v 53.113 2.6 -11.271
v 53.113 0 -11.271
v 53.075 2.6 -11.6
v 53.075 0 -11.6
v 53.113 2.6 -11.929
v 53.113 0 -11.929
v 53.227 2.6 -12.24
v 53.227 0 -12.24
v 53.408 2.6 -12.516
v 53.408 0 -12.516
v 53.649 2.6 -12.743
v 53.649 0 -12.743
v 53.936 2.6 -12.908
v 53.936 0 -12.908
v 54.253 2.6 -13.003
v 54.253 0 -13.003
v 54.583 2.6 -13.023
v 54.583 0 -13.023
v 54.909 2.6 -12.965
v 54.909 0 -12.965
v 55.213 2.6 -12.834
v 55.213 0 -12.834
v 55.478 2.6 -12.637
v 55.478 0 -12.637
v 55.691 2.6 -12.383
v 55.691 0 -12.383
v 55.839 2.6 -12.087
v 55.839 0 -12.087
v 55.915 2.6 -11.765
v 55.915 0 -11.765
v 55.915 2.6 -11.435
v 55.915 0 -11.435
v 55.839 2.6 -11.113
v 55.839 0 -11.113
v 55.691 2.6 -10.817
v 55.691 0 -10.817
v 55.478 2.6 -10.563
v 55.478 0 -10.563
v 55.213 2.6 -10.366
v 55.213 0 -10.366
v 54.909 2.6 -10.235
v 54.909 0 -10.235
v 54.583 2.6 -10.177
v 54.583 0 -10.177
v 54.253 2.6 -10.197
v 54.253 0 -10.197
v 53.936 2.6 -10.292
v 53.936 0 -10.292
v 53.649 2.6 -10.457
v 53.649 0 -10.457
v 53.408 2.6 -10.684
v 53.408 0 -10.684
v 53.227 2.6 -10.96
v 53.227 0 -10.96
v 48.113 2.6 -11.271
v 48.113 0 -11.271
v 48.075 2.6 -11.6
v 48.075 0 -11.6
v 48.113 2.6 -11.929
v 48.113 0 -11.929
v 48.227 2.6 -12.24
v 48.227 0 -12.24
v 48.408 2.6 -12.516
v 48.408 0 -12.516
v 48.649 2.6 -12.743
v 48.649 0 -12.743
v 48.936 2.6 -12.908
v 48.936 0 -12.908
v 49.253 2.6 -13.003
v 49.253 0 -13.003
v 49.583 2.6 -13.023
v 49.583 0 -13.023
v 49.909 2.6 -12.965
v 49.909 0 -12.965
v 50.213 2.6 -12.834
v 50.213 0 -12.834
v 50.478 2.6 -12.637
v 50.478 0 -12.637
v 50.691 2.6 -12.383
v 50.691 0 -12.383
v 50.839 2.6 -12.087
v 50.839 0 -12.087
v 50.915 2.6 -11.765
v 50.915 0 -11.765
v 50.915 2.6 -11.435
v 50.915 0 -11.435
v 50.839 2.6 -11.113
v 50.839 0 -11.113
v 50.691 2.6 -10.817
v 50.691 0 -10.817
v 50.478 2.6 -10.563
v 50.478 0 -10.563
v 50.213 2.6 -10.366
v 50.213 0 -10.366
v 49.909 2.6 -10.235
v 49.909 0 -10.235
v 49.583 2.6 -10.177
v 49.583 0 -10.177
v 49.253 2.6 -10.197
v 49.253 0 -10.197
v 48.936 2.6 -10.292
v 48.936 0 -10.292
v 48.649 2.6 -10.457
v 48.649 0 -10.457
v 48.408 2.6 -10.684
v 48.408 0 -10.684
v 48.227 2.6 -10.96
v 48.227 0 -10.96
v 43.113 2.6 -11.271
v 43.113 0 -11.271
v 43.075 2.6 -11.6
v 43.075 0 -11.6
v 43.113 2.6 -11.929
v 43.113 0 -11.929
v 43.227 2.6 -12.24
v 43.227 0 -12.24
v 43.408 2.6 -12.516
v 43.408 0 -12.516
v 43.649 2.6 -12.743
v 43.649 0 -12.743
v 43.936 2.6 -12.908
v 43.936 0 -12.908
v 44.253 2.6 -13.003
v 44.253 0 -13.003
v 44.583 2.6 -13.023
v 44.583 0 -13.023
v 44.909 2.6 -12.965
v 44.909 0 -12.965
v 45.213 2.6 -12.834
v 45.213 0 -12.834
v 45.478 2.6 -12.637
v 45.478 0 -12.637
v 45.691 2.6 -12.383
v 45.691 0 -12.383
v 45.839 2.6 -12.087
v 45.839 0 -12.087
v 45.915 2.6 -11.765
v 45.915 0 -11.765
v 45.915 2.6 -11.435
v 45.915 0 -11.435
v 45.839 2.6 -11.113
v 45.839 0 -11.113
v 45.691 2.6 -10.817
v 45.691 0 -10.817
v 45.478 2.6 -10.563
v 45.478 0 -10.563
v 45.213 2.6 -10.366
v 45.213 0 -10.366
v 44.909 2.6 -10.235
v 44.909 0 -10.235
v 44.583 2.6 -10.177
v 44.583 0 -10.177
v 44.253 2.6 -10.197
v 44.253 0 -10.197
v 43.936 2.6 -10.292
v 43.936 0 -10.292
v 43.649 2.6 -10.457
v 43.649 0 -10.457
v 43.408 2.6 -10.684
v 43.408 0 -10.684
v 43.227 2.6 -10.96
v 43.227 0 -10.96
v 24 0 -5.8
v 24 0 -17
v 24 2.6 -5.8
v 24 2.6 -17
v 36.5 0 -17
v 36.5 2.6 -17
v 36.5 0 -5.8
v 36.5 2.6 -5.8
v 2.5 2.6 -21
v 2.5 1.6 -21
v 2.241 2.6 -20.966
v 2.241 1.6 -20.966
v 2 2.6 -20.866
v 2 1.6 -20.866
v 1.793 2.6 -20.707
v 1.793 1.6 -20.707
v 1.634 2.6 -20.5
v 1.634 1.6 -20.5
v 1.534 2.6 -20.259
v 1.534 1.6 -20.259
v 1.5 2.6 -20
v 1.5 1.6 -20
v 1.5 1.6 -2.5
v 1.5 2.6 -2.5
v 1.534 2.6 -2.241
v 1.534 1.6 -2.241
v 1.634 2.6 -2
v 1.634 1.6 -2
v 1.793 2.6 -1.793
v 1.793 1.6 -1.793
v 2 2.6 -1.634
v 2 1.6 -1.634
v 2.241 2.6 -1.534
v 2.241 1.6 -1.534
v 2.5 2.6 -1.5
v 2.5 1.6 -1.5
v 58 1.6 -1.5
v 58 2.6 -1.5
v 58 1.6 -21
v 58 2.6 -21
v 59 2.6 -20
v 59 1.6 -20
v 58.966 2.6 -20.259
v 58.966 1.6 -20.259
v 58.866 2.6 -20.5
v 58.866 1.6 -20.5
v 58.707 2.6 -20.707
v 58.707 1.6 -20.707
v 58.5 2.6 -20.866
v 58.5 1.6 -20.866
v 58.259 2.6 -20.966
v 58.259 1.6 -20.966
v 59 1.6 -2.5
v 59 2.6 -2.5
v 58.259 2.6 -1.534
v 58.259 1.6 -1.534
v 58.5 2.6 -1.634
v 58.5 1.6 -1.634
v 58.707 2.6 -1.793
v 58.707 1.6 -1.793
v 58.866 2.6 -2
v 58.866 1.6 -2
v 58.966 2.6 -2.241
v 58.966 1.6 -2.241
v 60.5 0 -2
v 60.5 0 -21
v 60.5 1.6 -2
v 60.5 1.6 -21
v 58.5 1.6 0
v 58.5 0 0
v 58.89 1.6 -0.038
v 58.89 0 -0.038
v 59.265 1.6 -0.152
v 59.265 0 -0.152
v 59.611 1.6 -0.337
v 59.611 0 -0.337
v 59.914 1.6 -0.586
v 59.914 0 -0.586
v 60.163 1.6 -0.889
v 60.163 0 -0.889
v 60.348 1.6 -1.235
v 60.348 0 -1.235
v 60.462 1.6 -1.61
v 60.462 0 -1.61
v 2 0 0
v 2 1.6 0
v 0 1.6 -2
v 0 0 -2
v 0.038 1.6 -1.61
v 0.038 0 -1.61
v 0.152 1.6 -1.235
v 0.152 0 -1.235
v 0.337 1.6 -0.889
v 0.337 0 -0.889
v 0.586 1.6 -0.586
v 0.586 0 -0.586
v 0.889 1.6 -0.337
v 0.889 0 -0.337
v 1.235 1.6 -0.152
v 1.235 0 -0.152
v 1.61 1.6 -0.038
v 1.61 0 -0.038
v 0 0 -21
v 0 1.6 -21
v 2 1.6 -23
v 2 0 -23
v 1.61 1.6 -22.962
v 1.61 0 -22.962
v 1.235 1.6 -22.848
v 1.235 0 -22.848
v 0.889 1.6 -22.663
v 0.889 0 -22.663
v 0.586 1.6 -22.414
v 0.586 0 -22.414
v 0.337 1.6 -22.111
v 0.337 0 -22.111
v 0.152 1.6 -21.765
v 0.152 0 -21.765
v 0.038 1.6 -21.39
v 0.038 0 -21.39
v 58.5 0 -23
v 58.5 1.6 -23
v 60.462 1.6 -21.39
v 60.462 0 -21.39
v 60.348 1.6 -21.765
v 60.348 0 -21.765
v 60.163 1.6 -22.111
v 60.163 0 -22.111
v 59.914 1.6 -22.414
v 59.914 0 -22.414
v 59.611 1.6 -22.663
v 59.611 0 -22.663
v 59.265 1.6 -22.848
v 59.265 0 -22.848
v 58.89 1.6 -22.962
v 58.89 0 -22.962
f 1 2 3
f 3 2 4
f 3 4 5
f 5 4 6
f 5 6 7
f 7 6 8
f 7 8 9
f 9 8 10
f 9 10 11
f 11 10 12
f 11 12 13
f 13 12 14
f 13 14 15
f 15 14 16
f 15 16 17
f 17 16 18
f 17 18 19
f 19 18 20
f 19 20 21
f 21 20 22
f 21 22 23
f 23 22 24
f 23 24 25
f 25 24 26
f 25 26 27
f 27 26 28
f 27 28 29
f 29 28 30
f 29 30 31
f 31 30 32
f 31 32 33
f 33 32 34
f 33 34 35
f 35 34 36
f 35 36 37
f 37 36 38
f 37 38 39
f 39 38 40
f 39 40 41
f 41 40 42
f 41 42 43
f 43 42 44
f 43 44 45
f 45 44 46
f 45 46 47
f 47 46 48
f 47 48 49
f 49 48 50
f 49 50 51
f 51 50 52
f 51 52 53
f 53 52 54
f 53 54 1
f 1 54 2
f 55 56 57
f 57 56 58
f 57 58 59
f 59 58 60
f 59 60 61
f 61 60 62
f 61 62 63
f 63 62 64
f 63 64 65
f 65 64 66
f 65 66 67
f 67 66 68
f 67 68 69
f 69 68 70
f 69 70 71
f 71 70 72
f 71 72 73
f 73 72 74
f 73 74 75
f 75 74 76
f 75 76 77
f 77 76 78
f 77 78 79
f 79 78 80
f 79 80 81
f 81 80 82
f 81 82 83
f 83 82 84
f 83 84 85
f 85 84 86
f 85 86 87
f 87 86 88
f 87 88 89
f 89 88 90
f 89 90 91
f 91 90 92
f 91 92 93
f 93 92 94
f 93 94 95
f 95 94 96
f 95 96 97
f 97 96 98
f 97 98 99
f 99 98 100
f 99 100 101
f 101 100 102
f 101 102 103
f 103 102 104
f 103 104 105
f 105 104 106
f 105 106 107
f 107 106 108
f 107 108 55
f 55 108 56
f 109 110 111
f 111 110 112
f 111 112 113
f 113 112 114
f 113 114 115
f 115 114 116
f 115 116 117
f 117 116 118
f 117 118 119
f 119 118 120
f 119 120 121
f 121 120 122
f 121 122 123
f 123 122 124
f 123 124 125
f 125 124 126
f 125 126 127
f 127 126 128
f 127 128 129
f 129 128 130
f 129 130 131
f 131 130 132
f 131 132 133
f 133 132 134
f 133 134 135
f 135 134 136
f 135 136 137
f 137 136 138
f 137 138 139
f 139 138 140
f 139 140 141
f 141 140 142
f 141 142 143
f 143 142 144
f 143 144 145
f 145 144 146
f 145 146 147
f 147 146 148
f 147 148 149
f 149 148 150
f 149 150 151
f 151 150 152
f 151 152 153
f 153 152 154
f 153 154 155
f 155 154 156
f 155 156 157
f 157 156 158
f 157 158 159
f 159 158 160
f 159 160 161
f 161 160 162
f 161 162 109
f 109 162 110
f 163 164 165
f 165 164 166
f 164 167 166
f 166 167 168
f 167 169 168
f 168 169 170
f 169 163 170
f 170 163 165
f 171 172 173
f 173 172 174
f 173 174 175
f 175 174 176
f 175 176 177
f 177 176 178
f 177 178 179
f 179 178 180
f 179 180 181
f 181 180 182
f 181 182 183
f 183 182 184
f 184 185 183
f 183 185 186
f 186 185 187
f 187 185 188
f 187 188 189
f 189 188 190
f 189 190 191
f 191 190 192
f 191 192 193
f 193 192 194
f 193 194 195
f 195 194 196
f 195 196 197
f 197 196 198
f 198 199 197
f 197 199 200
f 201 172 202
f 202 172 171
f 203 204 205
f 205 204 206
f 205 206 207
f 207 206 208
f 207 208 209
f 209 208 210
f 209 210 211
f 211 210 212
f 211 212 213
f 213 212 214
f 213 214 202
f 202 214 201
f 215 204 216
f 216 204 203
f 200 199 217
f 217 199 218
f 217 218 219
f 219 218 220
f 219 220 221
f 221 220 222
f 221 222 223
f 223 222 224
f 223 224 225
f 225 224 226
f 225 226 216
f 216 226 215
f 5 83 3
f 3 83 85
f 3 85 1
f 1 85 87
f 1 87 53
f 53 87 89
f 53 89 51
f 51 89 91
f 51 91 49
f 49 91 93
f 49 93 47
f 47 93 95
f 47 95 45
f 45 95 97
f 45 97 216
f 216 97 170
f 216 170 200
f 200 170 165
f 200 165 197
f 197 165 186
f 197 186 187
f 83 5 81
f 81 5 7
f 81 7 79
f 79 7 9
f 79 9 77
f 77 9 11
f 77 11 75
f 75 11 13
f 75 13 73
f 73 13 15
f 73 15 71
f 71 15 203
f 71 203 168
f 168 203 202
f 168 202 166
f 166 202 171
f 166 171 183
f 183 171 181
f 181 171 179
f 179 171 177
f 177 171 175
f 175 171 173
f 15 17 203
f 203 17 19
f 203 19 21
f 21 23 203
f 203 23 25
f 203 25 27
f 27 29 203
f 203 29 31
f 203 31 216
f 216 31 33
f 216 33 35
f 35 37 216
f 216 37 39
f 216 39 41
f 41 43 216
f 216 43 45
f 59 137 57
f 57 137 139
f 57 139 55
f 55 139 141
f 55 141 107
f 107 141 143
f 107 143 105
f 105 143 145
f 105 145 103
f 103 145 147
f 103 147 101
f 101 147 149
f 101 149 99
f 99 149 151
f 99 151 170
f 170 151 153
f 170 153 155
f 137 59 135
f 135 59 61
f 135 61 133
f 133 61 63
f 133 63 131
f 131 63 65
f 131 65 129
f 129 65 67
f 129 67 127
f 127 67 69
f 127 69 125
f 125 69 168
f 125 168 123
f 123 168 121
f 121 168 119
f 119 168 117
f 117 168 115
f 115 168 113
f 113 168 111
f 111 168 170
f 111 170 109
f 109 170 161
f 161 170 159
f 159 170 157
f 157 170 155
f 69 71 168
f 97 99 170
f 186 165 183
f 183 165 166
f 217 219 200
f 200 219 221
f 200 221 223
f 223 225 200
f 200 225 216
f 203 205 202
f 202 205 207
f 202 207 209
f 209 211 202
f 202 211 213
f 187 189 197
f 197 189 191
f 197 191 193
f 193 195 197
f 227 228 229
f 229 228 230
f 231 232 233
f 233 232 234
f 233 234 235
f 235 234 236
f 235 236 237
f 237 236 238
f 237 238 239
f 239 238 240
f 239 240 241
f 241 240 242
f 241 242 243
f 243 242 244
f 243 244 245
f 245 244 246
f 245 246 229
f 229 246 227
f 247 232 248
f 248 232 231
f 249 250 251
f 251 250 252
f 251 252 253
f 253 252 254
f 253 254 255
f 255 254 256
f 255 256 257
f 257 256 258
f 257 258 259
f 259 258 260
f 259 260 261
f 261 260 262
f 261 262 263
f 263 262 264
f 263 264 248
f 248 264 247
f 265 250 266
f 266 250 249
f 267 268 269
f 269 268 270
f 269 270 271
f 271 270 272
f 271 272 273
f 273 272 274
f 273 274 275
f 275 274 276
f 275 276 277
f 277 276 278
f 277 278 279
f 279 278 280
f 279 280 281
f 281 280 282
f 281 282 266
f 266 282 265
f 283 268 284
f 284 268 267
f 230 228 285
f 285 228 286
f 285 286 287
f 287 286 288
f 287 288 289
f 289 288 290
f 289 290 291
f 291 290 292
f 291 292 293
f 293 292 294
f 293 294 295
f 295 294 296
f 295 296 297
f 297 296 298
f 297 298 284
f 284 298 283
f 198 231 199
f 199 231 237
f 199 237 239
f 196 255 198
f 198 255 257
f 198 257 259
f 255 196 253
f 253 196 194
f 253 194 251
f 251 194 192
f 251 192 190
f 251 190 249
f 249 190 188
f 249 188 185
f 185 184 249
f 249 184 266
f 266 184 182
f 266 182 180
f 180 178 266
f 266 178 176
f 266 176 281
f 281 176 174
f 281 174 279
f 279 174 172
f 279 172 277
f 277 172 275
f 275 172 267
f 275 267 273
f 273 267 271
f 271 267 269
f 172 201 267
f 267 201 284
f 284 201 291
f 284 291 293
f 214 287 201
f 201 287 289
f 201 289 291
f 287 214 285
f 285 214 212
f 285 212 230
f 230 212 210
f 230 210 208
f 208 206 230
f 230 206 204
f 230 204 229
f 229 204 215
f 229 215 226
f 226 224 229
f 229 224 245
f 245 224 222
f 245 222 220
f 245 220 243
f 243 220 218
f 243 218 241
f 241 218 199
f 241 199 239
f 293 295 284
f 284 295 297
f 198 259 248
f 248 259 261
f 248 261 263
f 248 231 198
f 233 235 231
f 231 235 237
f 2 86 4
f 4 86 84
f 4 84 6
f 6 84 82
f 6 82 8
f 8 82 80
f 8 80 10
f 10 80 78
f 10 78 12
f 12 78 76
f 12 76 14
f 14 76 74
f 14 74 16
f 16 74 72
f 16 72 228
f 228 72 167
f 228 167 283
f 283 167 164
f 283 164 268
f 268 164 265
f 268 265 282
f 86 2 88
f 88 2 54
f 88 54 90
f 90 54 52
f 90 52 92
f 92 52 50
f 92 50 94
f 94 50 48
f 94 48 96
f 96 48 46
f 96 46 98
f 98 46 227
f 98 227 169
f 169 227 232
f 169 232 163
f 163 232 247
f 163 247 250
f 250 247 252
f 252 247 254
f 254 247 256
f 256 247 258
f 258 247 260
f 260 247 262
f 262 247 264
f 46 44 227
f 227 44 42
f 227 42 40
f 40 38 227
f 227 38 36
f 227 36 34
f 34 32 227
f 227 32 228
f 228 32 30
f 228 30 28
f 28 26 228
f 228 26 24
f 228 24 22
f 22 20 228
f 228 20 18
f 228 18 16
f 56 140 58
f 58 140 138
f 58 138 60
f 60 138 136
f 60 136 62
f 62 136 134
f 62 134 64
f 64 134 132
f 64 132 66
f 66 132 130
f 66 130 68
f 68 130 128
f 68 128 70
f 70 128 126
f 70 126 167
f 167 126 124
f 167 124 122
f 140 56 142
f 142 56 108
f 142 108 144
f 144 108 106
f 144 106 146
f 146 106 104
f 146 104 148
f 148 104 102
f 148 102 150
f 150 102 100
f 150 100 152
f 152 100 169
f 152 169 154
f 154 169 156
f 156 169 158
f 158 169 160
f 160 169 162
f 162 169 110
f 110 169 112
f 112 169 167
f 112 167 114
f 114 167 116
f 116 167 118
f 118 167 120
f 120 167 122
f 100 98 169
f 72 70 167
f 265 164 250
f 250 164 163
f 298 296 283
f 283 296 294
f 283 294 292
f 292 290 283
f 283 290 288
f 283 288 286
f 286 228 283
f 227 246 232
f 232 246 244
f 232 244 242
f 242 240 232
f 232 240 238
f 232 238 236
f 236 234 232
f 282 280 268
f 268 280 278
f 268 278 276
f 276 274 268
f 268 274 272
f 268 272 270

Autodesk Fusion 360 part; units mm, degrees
sketch "Skizze1" plane through (0, 0, 0) normal (0, 1, 0) x (1, 0, 0)
  arc A0 (0, 2) -> (2, 0) centre (2, 2) ccw
  arc A1 (2, 23) -> (0, 21) centre (2, 21) ccw
  line L0 (58.5, 23) -> (2, 23)
  line L1 (60.5, 2) -> (60.5, 21)
  arc A2 (58.5, 0) -> (60.5, 2) centre (58.5, 2) ccw
  line L2 (2, 0) -> (58.5, 0)
  line L3 (0, 21) -> (0, 2)
  arc A3 (60.5, 21) -> (58.5, 23) centre (58.5, 21) ccw
  point P0 (60.5, 0)
  point P1 (0, 23)
  dimension "d1" = 60.5
  dimension "d2" = 23
  dimension "d3" = 2
  dimension "d4" = 2
  dimension "d5" = 2
  dimension "d6" = 2
sketch "Skizze2" plane through (0, 0, 0) normal (0, 1, 0) x (1, 0, 0)
  line L0 (2.5, 1.5) -> (58, 1.5)
  line L1 (59, 2.5) -> (59, 20)
  line L2 (58, 21) -> (2.5, 21)
  line L3 (1.5, 20) -> (1.5, 2.5)
  line L4 (2, 0) -> (58.5, 0)
  line L5 (0, 21) -> (0, 2)
  arc A0 (2.5, 21) -> (1.5, 20) centre (2.5, 20) ccw
  arc A1 (1.5, 2.5) -> (2.5, 1.5) centre (2.5, 2.5) ccw
  arc A2 (59, 20) -> (58, 21) centre (58, 20) ccw
  arc A3 (58, 1.5) -> (59, 2.5) centre (58, 2.5) ccw
  point P0 (1.5, 1.5)
  point P1 (59, 1.5)
  point P2 (1.5, 21)
  dimension "d7" = 57.5
  dimension "d8" = 19.5
  dimension "d9" = 1.5
  dimension "d10" = 1.5
  dimension "d11" = 1
sketch "Skizze3" plane through (0, 0, 0) normal (0, 1, 0) x (1, 0, 0)
  line L0 (24, 17) -> (24, 5.8)
  line L1 (36.5, 17) -> (24, 17)
  line L2 (36.5, 5.8) -> (36.5, 17)
  line L3 (24, 5.8) -> (36.5, 5.8)
  line L4 (0, 21) -> (0, 2)
  line L5 (2, 0) -> (58.5, 0)
  dimension "d12" = 12.5
  dimension "d13" = 11.2
  dimension "d14" = 24
  dimension "d15" = 5.8
sketch "Skizze4" plane through (0, 0, 0) normal (0, 1, 0) x (1, 0, 0)
  circle A0 centre (44.5, 11.6) radius 1.425
  circle A1 centre (49.5, 11.6) radius 1.425
  circle A2 centre (54.5, 11.6) radius 1.425
  line L0 (2.5, 1.5) -> (58, 1.5)
  line L1 (24, 17) -> (24, 5.8)
  line L2 (36.5, 5.8) -> (36.5, 17)
  line L3 (2, 0) -> (58.5, 0)
  dimension "d16" = 2.85
  dimension "d17" = 2.85
  dimension "d18" = 2.85
  dimension "d19" = 5
  dimension "d20" = 5
  dimension "d25" = 8
  dimension "d26" = 11.6
extrude "Extrusion1" add sketch "Skizze1" along normal blind 1.6
extrude "Extrusion2" add sketch "Skizze2" along normal blind 2.6
extrude "Extrusion3" cut sketch "Skizze4" sketch "Skizze3" along normal blind 2.6 of sketch 2
equation "h1 = 3 mm"
equation "h1_hoehe = 6.5 mm"
